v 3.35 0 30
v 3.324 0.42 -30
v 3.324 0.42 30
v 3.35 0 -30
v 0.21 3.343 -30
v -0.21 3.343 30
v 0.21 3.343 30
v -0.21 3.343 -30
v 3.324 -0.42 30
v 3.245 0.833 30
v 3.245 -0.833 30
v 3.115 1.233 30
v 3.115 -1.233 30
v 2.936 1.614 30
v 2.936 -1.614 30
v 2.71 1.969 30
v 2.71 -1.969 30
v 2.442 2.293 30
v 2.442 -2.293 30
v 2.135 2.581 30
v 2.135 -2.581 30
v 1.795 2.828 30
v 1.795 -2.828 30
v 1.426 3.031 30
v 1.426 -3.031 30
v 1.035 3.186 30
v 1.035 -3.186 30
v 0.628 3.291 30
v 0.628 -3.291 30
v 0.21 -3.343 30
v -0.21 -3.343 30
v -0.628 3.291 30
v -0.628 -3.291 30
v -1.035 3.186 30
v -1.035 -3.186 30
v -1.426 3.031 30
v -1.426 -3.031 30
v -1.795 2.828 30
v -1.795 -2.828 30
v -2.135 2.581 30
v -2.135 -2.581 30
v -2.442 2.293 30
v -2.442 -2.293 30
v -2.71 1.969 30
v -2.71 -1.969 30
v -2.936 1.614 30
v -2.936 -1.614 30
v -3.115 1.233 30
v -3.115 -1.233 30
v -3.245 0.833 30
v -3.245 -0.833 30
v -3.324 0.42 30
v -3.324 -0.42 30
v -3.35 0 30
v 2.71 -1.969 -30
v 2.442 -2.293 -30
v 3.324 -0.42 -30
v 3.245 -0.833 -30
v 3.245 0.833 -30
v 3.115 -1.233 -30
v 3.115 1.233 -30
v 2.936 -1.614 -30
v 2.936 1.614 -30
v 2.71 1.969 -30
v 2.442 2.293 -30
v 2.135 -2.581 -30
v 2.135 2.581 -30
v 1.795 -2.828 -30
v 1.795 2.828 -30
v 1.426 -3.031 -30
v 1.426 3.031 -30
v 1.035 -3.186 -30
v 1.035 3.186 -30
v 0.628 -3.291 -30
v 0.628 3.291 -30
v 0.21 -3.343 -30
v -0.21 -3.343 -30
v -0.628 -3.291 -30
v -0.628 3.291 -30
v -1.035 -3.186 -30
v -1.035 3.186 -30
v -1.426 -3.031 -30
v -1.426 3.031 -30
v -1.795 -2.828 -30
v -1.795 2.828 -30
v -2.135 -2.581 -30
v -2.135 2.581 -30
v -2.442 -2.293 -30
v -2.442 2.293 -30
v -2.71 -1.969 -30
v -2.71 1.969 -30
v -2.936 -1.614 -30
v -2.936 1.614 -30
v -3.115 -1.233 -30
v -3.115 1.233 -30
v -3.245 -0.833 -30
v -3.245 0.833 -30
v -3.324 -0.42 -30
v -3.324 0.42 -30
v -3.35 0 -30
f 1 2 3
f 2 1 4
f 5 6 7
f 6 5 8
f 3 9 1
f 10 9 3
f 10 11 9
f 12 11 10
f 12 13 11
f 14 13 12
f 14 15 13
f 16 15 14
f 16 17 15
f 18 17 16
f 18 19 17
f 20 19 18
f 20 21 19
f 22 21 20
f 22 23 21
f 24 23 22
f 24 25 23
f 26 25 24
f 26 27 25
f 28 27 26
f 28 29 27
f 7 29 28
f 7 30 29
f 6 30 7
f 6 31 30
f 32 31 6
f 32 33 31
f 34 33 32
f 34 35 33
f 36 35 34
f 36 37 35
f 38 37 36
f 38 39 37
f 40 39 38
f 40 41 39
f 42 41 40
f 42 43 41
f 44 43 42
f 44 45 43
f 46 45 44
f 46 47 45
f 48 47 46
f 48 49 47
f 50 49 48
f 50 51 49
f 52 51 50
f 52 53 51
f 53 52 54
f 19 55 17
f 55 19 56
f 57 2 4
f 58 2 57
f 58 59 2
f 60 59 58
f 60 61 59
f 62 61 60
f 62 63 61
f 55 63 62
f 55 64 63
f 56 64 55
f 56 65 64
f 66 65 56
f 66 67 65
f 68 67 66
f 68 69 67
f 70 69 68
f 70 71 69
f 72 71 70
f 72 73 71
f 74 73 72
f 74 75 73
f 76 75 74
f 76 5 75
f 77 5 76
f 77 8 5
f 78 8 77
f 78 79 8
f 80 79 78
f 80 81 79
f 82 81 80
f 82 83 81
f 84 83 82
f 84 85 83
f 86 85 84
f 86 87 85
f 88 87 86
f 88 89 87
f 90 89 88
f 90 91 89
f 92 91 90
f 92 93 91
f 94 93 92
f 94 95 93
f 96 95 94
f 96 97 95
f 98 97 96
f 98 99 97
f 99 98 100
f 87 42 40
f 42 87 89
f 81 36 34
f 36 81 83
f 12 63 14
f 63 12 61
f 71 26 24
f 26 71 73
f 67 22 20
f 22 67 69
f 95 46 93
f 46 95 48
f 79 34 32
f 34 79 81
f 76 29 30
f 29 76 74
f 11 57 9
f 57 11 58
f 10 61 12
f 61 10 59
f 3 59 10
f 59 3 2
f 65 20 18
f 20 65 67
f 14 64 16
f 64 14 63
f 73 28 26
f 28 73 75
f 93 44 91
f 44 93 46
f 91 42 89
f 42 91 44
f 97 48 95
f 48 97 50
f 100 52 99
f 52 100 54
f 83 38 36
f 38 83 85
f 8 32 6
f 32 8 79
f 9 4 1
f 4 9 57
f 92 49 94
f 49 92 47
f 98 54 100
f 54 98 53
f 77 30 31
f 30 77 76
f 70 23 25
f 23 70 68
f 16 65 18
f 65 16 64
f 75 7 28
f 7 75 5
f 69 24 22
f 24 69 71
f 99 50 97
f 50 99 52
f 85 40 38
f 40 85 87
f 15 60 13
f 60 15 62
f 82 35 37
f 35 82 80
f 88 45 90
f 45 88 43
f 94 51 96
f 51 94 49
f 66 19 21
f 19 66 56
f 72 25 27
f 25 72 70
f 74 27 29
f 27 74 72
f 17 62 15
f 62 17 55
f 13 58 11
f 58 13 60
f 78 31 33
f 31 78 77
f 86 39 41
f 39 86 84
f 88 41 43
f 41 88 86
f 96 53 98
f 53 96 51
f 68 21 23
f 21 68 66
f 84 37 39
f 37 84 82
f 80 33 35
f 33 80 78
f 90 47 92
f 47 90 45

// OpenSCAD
$fn = 50;


difference() {
	union() {
		translate(v = [0, 0, -30.0000000000]) {
			cylinder(h = 60, r = 3.3500000000);
		}
	}
	union() {
		translate(v = [0, 0, -100.0000000000]) {
			cylinder(h = 200, r = 0);
		}
	}
}
